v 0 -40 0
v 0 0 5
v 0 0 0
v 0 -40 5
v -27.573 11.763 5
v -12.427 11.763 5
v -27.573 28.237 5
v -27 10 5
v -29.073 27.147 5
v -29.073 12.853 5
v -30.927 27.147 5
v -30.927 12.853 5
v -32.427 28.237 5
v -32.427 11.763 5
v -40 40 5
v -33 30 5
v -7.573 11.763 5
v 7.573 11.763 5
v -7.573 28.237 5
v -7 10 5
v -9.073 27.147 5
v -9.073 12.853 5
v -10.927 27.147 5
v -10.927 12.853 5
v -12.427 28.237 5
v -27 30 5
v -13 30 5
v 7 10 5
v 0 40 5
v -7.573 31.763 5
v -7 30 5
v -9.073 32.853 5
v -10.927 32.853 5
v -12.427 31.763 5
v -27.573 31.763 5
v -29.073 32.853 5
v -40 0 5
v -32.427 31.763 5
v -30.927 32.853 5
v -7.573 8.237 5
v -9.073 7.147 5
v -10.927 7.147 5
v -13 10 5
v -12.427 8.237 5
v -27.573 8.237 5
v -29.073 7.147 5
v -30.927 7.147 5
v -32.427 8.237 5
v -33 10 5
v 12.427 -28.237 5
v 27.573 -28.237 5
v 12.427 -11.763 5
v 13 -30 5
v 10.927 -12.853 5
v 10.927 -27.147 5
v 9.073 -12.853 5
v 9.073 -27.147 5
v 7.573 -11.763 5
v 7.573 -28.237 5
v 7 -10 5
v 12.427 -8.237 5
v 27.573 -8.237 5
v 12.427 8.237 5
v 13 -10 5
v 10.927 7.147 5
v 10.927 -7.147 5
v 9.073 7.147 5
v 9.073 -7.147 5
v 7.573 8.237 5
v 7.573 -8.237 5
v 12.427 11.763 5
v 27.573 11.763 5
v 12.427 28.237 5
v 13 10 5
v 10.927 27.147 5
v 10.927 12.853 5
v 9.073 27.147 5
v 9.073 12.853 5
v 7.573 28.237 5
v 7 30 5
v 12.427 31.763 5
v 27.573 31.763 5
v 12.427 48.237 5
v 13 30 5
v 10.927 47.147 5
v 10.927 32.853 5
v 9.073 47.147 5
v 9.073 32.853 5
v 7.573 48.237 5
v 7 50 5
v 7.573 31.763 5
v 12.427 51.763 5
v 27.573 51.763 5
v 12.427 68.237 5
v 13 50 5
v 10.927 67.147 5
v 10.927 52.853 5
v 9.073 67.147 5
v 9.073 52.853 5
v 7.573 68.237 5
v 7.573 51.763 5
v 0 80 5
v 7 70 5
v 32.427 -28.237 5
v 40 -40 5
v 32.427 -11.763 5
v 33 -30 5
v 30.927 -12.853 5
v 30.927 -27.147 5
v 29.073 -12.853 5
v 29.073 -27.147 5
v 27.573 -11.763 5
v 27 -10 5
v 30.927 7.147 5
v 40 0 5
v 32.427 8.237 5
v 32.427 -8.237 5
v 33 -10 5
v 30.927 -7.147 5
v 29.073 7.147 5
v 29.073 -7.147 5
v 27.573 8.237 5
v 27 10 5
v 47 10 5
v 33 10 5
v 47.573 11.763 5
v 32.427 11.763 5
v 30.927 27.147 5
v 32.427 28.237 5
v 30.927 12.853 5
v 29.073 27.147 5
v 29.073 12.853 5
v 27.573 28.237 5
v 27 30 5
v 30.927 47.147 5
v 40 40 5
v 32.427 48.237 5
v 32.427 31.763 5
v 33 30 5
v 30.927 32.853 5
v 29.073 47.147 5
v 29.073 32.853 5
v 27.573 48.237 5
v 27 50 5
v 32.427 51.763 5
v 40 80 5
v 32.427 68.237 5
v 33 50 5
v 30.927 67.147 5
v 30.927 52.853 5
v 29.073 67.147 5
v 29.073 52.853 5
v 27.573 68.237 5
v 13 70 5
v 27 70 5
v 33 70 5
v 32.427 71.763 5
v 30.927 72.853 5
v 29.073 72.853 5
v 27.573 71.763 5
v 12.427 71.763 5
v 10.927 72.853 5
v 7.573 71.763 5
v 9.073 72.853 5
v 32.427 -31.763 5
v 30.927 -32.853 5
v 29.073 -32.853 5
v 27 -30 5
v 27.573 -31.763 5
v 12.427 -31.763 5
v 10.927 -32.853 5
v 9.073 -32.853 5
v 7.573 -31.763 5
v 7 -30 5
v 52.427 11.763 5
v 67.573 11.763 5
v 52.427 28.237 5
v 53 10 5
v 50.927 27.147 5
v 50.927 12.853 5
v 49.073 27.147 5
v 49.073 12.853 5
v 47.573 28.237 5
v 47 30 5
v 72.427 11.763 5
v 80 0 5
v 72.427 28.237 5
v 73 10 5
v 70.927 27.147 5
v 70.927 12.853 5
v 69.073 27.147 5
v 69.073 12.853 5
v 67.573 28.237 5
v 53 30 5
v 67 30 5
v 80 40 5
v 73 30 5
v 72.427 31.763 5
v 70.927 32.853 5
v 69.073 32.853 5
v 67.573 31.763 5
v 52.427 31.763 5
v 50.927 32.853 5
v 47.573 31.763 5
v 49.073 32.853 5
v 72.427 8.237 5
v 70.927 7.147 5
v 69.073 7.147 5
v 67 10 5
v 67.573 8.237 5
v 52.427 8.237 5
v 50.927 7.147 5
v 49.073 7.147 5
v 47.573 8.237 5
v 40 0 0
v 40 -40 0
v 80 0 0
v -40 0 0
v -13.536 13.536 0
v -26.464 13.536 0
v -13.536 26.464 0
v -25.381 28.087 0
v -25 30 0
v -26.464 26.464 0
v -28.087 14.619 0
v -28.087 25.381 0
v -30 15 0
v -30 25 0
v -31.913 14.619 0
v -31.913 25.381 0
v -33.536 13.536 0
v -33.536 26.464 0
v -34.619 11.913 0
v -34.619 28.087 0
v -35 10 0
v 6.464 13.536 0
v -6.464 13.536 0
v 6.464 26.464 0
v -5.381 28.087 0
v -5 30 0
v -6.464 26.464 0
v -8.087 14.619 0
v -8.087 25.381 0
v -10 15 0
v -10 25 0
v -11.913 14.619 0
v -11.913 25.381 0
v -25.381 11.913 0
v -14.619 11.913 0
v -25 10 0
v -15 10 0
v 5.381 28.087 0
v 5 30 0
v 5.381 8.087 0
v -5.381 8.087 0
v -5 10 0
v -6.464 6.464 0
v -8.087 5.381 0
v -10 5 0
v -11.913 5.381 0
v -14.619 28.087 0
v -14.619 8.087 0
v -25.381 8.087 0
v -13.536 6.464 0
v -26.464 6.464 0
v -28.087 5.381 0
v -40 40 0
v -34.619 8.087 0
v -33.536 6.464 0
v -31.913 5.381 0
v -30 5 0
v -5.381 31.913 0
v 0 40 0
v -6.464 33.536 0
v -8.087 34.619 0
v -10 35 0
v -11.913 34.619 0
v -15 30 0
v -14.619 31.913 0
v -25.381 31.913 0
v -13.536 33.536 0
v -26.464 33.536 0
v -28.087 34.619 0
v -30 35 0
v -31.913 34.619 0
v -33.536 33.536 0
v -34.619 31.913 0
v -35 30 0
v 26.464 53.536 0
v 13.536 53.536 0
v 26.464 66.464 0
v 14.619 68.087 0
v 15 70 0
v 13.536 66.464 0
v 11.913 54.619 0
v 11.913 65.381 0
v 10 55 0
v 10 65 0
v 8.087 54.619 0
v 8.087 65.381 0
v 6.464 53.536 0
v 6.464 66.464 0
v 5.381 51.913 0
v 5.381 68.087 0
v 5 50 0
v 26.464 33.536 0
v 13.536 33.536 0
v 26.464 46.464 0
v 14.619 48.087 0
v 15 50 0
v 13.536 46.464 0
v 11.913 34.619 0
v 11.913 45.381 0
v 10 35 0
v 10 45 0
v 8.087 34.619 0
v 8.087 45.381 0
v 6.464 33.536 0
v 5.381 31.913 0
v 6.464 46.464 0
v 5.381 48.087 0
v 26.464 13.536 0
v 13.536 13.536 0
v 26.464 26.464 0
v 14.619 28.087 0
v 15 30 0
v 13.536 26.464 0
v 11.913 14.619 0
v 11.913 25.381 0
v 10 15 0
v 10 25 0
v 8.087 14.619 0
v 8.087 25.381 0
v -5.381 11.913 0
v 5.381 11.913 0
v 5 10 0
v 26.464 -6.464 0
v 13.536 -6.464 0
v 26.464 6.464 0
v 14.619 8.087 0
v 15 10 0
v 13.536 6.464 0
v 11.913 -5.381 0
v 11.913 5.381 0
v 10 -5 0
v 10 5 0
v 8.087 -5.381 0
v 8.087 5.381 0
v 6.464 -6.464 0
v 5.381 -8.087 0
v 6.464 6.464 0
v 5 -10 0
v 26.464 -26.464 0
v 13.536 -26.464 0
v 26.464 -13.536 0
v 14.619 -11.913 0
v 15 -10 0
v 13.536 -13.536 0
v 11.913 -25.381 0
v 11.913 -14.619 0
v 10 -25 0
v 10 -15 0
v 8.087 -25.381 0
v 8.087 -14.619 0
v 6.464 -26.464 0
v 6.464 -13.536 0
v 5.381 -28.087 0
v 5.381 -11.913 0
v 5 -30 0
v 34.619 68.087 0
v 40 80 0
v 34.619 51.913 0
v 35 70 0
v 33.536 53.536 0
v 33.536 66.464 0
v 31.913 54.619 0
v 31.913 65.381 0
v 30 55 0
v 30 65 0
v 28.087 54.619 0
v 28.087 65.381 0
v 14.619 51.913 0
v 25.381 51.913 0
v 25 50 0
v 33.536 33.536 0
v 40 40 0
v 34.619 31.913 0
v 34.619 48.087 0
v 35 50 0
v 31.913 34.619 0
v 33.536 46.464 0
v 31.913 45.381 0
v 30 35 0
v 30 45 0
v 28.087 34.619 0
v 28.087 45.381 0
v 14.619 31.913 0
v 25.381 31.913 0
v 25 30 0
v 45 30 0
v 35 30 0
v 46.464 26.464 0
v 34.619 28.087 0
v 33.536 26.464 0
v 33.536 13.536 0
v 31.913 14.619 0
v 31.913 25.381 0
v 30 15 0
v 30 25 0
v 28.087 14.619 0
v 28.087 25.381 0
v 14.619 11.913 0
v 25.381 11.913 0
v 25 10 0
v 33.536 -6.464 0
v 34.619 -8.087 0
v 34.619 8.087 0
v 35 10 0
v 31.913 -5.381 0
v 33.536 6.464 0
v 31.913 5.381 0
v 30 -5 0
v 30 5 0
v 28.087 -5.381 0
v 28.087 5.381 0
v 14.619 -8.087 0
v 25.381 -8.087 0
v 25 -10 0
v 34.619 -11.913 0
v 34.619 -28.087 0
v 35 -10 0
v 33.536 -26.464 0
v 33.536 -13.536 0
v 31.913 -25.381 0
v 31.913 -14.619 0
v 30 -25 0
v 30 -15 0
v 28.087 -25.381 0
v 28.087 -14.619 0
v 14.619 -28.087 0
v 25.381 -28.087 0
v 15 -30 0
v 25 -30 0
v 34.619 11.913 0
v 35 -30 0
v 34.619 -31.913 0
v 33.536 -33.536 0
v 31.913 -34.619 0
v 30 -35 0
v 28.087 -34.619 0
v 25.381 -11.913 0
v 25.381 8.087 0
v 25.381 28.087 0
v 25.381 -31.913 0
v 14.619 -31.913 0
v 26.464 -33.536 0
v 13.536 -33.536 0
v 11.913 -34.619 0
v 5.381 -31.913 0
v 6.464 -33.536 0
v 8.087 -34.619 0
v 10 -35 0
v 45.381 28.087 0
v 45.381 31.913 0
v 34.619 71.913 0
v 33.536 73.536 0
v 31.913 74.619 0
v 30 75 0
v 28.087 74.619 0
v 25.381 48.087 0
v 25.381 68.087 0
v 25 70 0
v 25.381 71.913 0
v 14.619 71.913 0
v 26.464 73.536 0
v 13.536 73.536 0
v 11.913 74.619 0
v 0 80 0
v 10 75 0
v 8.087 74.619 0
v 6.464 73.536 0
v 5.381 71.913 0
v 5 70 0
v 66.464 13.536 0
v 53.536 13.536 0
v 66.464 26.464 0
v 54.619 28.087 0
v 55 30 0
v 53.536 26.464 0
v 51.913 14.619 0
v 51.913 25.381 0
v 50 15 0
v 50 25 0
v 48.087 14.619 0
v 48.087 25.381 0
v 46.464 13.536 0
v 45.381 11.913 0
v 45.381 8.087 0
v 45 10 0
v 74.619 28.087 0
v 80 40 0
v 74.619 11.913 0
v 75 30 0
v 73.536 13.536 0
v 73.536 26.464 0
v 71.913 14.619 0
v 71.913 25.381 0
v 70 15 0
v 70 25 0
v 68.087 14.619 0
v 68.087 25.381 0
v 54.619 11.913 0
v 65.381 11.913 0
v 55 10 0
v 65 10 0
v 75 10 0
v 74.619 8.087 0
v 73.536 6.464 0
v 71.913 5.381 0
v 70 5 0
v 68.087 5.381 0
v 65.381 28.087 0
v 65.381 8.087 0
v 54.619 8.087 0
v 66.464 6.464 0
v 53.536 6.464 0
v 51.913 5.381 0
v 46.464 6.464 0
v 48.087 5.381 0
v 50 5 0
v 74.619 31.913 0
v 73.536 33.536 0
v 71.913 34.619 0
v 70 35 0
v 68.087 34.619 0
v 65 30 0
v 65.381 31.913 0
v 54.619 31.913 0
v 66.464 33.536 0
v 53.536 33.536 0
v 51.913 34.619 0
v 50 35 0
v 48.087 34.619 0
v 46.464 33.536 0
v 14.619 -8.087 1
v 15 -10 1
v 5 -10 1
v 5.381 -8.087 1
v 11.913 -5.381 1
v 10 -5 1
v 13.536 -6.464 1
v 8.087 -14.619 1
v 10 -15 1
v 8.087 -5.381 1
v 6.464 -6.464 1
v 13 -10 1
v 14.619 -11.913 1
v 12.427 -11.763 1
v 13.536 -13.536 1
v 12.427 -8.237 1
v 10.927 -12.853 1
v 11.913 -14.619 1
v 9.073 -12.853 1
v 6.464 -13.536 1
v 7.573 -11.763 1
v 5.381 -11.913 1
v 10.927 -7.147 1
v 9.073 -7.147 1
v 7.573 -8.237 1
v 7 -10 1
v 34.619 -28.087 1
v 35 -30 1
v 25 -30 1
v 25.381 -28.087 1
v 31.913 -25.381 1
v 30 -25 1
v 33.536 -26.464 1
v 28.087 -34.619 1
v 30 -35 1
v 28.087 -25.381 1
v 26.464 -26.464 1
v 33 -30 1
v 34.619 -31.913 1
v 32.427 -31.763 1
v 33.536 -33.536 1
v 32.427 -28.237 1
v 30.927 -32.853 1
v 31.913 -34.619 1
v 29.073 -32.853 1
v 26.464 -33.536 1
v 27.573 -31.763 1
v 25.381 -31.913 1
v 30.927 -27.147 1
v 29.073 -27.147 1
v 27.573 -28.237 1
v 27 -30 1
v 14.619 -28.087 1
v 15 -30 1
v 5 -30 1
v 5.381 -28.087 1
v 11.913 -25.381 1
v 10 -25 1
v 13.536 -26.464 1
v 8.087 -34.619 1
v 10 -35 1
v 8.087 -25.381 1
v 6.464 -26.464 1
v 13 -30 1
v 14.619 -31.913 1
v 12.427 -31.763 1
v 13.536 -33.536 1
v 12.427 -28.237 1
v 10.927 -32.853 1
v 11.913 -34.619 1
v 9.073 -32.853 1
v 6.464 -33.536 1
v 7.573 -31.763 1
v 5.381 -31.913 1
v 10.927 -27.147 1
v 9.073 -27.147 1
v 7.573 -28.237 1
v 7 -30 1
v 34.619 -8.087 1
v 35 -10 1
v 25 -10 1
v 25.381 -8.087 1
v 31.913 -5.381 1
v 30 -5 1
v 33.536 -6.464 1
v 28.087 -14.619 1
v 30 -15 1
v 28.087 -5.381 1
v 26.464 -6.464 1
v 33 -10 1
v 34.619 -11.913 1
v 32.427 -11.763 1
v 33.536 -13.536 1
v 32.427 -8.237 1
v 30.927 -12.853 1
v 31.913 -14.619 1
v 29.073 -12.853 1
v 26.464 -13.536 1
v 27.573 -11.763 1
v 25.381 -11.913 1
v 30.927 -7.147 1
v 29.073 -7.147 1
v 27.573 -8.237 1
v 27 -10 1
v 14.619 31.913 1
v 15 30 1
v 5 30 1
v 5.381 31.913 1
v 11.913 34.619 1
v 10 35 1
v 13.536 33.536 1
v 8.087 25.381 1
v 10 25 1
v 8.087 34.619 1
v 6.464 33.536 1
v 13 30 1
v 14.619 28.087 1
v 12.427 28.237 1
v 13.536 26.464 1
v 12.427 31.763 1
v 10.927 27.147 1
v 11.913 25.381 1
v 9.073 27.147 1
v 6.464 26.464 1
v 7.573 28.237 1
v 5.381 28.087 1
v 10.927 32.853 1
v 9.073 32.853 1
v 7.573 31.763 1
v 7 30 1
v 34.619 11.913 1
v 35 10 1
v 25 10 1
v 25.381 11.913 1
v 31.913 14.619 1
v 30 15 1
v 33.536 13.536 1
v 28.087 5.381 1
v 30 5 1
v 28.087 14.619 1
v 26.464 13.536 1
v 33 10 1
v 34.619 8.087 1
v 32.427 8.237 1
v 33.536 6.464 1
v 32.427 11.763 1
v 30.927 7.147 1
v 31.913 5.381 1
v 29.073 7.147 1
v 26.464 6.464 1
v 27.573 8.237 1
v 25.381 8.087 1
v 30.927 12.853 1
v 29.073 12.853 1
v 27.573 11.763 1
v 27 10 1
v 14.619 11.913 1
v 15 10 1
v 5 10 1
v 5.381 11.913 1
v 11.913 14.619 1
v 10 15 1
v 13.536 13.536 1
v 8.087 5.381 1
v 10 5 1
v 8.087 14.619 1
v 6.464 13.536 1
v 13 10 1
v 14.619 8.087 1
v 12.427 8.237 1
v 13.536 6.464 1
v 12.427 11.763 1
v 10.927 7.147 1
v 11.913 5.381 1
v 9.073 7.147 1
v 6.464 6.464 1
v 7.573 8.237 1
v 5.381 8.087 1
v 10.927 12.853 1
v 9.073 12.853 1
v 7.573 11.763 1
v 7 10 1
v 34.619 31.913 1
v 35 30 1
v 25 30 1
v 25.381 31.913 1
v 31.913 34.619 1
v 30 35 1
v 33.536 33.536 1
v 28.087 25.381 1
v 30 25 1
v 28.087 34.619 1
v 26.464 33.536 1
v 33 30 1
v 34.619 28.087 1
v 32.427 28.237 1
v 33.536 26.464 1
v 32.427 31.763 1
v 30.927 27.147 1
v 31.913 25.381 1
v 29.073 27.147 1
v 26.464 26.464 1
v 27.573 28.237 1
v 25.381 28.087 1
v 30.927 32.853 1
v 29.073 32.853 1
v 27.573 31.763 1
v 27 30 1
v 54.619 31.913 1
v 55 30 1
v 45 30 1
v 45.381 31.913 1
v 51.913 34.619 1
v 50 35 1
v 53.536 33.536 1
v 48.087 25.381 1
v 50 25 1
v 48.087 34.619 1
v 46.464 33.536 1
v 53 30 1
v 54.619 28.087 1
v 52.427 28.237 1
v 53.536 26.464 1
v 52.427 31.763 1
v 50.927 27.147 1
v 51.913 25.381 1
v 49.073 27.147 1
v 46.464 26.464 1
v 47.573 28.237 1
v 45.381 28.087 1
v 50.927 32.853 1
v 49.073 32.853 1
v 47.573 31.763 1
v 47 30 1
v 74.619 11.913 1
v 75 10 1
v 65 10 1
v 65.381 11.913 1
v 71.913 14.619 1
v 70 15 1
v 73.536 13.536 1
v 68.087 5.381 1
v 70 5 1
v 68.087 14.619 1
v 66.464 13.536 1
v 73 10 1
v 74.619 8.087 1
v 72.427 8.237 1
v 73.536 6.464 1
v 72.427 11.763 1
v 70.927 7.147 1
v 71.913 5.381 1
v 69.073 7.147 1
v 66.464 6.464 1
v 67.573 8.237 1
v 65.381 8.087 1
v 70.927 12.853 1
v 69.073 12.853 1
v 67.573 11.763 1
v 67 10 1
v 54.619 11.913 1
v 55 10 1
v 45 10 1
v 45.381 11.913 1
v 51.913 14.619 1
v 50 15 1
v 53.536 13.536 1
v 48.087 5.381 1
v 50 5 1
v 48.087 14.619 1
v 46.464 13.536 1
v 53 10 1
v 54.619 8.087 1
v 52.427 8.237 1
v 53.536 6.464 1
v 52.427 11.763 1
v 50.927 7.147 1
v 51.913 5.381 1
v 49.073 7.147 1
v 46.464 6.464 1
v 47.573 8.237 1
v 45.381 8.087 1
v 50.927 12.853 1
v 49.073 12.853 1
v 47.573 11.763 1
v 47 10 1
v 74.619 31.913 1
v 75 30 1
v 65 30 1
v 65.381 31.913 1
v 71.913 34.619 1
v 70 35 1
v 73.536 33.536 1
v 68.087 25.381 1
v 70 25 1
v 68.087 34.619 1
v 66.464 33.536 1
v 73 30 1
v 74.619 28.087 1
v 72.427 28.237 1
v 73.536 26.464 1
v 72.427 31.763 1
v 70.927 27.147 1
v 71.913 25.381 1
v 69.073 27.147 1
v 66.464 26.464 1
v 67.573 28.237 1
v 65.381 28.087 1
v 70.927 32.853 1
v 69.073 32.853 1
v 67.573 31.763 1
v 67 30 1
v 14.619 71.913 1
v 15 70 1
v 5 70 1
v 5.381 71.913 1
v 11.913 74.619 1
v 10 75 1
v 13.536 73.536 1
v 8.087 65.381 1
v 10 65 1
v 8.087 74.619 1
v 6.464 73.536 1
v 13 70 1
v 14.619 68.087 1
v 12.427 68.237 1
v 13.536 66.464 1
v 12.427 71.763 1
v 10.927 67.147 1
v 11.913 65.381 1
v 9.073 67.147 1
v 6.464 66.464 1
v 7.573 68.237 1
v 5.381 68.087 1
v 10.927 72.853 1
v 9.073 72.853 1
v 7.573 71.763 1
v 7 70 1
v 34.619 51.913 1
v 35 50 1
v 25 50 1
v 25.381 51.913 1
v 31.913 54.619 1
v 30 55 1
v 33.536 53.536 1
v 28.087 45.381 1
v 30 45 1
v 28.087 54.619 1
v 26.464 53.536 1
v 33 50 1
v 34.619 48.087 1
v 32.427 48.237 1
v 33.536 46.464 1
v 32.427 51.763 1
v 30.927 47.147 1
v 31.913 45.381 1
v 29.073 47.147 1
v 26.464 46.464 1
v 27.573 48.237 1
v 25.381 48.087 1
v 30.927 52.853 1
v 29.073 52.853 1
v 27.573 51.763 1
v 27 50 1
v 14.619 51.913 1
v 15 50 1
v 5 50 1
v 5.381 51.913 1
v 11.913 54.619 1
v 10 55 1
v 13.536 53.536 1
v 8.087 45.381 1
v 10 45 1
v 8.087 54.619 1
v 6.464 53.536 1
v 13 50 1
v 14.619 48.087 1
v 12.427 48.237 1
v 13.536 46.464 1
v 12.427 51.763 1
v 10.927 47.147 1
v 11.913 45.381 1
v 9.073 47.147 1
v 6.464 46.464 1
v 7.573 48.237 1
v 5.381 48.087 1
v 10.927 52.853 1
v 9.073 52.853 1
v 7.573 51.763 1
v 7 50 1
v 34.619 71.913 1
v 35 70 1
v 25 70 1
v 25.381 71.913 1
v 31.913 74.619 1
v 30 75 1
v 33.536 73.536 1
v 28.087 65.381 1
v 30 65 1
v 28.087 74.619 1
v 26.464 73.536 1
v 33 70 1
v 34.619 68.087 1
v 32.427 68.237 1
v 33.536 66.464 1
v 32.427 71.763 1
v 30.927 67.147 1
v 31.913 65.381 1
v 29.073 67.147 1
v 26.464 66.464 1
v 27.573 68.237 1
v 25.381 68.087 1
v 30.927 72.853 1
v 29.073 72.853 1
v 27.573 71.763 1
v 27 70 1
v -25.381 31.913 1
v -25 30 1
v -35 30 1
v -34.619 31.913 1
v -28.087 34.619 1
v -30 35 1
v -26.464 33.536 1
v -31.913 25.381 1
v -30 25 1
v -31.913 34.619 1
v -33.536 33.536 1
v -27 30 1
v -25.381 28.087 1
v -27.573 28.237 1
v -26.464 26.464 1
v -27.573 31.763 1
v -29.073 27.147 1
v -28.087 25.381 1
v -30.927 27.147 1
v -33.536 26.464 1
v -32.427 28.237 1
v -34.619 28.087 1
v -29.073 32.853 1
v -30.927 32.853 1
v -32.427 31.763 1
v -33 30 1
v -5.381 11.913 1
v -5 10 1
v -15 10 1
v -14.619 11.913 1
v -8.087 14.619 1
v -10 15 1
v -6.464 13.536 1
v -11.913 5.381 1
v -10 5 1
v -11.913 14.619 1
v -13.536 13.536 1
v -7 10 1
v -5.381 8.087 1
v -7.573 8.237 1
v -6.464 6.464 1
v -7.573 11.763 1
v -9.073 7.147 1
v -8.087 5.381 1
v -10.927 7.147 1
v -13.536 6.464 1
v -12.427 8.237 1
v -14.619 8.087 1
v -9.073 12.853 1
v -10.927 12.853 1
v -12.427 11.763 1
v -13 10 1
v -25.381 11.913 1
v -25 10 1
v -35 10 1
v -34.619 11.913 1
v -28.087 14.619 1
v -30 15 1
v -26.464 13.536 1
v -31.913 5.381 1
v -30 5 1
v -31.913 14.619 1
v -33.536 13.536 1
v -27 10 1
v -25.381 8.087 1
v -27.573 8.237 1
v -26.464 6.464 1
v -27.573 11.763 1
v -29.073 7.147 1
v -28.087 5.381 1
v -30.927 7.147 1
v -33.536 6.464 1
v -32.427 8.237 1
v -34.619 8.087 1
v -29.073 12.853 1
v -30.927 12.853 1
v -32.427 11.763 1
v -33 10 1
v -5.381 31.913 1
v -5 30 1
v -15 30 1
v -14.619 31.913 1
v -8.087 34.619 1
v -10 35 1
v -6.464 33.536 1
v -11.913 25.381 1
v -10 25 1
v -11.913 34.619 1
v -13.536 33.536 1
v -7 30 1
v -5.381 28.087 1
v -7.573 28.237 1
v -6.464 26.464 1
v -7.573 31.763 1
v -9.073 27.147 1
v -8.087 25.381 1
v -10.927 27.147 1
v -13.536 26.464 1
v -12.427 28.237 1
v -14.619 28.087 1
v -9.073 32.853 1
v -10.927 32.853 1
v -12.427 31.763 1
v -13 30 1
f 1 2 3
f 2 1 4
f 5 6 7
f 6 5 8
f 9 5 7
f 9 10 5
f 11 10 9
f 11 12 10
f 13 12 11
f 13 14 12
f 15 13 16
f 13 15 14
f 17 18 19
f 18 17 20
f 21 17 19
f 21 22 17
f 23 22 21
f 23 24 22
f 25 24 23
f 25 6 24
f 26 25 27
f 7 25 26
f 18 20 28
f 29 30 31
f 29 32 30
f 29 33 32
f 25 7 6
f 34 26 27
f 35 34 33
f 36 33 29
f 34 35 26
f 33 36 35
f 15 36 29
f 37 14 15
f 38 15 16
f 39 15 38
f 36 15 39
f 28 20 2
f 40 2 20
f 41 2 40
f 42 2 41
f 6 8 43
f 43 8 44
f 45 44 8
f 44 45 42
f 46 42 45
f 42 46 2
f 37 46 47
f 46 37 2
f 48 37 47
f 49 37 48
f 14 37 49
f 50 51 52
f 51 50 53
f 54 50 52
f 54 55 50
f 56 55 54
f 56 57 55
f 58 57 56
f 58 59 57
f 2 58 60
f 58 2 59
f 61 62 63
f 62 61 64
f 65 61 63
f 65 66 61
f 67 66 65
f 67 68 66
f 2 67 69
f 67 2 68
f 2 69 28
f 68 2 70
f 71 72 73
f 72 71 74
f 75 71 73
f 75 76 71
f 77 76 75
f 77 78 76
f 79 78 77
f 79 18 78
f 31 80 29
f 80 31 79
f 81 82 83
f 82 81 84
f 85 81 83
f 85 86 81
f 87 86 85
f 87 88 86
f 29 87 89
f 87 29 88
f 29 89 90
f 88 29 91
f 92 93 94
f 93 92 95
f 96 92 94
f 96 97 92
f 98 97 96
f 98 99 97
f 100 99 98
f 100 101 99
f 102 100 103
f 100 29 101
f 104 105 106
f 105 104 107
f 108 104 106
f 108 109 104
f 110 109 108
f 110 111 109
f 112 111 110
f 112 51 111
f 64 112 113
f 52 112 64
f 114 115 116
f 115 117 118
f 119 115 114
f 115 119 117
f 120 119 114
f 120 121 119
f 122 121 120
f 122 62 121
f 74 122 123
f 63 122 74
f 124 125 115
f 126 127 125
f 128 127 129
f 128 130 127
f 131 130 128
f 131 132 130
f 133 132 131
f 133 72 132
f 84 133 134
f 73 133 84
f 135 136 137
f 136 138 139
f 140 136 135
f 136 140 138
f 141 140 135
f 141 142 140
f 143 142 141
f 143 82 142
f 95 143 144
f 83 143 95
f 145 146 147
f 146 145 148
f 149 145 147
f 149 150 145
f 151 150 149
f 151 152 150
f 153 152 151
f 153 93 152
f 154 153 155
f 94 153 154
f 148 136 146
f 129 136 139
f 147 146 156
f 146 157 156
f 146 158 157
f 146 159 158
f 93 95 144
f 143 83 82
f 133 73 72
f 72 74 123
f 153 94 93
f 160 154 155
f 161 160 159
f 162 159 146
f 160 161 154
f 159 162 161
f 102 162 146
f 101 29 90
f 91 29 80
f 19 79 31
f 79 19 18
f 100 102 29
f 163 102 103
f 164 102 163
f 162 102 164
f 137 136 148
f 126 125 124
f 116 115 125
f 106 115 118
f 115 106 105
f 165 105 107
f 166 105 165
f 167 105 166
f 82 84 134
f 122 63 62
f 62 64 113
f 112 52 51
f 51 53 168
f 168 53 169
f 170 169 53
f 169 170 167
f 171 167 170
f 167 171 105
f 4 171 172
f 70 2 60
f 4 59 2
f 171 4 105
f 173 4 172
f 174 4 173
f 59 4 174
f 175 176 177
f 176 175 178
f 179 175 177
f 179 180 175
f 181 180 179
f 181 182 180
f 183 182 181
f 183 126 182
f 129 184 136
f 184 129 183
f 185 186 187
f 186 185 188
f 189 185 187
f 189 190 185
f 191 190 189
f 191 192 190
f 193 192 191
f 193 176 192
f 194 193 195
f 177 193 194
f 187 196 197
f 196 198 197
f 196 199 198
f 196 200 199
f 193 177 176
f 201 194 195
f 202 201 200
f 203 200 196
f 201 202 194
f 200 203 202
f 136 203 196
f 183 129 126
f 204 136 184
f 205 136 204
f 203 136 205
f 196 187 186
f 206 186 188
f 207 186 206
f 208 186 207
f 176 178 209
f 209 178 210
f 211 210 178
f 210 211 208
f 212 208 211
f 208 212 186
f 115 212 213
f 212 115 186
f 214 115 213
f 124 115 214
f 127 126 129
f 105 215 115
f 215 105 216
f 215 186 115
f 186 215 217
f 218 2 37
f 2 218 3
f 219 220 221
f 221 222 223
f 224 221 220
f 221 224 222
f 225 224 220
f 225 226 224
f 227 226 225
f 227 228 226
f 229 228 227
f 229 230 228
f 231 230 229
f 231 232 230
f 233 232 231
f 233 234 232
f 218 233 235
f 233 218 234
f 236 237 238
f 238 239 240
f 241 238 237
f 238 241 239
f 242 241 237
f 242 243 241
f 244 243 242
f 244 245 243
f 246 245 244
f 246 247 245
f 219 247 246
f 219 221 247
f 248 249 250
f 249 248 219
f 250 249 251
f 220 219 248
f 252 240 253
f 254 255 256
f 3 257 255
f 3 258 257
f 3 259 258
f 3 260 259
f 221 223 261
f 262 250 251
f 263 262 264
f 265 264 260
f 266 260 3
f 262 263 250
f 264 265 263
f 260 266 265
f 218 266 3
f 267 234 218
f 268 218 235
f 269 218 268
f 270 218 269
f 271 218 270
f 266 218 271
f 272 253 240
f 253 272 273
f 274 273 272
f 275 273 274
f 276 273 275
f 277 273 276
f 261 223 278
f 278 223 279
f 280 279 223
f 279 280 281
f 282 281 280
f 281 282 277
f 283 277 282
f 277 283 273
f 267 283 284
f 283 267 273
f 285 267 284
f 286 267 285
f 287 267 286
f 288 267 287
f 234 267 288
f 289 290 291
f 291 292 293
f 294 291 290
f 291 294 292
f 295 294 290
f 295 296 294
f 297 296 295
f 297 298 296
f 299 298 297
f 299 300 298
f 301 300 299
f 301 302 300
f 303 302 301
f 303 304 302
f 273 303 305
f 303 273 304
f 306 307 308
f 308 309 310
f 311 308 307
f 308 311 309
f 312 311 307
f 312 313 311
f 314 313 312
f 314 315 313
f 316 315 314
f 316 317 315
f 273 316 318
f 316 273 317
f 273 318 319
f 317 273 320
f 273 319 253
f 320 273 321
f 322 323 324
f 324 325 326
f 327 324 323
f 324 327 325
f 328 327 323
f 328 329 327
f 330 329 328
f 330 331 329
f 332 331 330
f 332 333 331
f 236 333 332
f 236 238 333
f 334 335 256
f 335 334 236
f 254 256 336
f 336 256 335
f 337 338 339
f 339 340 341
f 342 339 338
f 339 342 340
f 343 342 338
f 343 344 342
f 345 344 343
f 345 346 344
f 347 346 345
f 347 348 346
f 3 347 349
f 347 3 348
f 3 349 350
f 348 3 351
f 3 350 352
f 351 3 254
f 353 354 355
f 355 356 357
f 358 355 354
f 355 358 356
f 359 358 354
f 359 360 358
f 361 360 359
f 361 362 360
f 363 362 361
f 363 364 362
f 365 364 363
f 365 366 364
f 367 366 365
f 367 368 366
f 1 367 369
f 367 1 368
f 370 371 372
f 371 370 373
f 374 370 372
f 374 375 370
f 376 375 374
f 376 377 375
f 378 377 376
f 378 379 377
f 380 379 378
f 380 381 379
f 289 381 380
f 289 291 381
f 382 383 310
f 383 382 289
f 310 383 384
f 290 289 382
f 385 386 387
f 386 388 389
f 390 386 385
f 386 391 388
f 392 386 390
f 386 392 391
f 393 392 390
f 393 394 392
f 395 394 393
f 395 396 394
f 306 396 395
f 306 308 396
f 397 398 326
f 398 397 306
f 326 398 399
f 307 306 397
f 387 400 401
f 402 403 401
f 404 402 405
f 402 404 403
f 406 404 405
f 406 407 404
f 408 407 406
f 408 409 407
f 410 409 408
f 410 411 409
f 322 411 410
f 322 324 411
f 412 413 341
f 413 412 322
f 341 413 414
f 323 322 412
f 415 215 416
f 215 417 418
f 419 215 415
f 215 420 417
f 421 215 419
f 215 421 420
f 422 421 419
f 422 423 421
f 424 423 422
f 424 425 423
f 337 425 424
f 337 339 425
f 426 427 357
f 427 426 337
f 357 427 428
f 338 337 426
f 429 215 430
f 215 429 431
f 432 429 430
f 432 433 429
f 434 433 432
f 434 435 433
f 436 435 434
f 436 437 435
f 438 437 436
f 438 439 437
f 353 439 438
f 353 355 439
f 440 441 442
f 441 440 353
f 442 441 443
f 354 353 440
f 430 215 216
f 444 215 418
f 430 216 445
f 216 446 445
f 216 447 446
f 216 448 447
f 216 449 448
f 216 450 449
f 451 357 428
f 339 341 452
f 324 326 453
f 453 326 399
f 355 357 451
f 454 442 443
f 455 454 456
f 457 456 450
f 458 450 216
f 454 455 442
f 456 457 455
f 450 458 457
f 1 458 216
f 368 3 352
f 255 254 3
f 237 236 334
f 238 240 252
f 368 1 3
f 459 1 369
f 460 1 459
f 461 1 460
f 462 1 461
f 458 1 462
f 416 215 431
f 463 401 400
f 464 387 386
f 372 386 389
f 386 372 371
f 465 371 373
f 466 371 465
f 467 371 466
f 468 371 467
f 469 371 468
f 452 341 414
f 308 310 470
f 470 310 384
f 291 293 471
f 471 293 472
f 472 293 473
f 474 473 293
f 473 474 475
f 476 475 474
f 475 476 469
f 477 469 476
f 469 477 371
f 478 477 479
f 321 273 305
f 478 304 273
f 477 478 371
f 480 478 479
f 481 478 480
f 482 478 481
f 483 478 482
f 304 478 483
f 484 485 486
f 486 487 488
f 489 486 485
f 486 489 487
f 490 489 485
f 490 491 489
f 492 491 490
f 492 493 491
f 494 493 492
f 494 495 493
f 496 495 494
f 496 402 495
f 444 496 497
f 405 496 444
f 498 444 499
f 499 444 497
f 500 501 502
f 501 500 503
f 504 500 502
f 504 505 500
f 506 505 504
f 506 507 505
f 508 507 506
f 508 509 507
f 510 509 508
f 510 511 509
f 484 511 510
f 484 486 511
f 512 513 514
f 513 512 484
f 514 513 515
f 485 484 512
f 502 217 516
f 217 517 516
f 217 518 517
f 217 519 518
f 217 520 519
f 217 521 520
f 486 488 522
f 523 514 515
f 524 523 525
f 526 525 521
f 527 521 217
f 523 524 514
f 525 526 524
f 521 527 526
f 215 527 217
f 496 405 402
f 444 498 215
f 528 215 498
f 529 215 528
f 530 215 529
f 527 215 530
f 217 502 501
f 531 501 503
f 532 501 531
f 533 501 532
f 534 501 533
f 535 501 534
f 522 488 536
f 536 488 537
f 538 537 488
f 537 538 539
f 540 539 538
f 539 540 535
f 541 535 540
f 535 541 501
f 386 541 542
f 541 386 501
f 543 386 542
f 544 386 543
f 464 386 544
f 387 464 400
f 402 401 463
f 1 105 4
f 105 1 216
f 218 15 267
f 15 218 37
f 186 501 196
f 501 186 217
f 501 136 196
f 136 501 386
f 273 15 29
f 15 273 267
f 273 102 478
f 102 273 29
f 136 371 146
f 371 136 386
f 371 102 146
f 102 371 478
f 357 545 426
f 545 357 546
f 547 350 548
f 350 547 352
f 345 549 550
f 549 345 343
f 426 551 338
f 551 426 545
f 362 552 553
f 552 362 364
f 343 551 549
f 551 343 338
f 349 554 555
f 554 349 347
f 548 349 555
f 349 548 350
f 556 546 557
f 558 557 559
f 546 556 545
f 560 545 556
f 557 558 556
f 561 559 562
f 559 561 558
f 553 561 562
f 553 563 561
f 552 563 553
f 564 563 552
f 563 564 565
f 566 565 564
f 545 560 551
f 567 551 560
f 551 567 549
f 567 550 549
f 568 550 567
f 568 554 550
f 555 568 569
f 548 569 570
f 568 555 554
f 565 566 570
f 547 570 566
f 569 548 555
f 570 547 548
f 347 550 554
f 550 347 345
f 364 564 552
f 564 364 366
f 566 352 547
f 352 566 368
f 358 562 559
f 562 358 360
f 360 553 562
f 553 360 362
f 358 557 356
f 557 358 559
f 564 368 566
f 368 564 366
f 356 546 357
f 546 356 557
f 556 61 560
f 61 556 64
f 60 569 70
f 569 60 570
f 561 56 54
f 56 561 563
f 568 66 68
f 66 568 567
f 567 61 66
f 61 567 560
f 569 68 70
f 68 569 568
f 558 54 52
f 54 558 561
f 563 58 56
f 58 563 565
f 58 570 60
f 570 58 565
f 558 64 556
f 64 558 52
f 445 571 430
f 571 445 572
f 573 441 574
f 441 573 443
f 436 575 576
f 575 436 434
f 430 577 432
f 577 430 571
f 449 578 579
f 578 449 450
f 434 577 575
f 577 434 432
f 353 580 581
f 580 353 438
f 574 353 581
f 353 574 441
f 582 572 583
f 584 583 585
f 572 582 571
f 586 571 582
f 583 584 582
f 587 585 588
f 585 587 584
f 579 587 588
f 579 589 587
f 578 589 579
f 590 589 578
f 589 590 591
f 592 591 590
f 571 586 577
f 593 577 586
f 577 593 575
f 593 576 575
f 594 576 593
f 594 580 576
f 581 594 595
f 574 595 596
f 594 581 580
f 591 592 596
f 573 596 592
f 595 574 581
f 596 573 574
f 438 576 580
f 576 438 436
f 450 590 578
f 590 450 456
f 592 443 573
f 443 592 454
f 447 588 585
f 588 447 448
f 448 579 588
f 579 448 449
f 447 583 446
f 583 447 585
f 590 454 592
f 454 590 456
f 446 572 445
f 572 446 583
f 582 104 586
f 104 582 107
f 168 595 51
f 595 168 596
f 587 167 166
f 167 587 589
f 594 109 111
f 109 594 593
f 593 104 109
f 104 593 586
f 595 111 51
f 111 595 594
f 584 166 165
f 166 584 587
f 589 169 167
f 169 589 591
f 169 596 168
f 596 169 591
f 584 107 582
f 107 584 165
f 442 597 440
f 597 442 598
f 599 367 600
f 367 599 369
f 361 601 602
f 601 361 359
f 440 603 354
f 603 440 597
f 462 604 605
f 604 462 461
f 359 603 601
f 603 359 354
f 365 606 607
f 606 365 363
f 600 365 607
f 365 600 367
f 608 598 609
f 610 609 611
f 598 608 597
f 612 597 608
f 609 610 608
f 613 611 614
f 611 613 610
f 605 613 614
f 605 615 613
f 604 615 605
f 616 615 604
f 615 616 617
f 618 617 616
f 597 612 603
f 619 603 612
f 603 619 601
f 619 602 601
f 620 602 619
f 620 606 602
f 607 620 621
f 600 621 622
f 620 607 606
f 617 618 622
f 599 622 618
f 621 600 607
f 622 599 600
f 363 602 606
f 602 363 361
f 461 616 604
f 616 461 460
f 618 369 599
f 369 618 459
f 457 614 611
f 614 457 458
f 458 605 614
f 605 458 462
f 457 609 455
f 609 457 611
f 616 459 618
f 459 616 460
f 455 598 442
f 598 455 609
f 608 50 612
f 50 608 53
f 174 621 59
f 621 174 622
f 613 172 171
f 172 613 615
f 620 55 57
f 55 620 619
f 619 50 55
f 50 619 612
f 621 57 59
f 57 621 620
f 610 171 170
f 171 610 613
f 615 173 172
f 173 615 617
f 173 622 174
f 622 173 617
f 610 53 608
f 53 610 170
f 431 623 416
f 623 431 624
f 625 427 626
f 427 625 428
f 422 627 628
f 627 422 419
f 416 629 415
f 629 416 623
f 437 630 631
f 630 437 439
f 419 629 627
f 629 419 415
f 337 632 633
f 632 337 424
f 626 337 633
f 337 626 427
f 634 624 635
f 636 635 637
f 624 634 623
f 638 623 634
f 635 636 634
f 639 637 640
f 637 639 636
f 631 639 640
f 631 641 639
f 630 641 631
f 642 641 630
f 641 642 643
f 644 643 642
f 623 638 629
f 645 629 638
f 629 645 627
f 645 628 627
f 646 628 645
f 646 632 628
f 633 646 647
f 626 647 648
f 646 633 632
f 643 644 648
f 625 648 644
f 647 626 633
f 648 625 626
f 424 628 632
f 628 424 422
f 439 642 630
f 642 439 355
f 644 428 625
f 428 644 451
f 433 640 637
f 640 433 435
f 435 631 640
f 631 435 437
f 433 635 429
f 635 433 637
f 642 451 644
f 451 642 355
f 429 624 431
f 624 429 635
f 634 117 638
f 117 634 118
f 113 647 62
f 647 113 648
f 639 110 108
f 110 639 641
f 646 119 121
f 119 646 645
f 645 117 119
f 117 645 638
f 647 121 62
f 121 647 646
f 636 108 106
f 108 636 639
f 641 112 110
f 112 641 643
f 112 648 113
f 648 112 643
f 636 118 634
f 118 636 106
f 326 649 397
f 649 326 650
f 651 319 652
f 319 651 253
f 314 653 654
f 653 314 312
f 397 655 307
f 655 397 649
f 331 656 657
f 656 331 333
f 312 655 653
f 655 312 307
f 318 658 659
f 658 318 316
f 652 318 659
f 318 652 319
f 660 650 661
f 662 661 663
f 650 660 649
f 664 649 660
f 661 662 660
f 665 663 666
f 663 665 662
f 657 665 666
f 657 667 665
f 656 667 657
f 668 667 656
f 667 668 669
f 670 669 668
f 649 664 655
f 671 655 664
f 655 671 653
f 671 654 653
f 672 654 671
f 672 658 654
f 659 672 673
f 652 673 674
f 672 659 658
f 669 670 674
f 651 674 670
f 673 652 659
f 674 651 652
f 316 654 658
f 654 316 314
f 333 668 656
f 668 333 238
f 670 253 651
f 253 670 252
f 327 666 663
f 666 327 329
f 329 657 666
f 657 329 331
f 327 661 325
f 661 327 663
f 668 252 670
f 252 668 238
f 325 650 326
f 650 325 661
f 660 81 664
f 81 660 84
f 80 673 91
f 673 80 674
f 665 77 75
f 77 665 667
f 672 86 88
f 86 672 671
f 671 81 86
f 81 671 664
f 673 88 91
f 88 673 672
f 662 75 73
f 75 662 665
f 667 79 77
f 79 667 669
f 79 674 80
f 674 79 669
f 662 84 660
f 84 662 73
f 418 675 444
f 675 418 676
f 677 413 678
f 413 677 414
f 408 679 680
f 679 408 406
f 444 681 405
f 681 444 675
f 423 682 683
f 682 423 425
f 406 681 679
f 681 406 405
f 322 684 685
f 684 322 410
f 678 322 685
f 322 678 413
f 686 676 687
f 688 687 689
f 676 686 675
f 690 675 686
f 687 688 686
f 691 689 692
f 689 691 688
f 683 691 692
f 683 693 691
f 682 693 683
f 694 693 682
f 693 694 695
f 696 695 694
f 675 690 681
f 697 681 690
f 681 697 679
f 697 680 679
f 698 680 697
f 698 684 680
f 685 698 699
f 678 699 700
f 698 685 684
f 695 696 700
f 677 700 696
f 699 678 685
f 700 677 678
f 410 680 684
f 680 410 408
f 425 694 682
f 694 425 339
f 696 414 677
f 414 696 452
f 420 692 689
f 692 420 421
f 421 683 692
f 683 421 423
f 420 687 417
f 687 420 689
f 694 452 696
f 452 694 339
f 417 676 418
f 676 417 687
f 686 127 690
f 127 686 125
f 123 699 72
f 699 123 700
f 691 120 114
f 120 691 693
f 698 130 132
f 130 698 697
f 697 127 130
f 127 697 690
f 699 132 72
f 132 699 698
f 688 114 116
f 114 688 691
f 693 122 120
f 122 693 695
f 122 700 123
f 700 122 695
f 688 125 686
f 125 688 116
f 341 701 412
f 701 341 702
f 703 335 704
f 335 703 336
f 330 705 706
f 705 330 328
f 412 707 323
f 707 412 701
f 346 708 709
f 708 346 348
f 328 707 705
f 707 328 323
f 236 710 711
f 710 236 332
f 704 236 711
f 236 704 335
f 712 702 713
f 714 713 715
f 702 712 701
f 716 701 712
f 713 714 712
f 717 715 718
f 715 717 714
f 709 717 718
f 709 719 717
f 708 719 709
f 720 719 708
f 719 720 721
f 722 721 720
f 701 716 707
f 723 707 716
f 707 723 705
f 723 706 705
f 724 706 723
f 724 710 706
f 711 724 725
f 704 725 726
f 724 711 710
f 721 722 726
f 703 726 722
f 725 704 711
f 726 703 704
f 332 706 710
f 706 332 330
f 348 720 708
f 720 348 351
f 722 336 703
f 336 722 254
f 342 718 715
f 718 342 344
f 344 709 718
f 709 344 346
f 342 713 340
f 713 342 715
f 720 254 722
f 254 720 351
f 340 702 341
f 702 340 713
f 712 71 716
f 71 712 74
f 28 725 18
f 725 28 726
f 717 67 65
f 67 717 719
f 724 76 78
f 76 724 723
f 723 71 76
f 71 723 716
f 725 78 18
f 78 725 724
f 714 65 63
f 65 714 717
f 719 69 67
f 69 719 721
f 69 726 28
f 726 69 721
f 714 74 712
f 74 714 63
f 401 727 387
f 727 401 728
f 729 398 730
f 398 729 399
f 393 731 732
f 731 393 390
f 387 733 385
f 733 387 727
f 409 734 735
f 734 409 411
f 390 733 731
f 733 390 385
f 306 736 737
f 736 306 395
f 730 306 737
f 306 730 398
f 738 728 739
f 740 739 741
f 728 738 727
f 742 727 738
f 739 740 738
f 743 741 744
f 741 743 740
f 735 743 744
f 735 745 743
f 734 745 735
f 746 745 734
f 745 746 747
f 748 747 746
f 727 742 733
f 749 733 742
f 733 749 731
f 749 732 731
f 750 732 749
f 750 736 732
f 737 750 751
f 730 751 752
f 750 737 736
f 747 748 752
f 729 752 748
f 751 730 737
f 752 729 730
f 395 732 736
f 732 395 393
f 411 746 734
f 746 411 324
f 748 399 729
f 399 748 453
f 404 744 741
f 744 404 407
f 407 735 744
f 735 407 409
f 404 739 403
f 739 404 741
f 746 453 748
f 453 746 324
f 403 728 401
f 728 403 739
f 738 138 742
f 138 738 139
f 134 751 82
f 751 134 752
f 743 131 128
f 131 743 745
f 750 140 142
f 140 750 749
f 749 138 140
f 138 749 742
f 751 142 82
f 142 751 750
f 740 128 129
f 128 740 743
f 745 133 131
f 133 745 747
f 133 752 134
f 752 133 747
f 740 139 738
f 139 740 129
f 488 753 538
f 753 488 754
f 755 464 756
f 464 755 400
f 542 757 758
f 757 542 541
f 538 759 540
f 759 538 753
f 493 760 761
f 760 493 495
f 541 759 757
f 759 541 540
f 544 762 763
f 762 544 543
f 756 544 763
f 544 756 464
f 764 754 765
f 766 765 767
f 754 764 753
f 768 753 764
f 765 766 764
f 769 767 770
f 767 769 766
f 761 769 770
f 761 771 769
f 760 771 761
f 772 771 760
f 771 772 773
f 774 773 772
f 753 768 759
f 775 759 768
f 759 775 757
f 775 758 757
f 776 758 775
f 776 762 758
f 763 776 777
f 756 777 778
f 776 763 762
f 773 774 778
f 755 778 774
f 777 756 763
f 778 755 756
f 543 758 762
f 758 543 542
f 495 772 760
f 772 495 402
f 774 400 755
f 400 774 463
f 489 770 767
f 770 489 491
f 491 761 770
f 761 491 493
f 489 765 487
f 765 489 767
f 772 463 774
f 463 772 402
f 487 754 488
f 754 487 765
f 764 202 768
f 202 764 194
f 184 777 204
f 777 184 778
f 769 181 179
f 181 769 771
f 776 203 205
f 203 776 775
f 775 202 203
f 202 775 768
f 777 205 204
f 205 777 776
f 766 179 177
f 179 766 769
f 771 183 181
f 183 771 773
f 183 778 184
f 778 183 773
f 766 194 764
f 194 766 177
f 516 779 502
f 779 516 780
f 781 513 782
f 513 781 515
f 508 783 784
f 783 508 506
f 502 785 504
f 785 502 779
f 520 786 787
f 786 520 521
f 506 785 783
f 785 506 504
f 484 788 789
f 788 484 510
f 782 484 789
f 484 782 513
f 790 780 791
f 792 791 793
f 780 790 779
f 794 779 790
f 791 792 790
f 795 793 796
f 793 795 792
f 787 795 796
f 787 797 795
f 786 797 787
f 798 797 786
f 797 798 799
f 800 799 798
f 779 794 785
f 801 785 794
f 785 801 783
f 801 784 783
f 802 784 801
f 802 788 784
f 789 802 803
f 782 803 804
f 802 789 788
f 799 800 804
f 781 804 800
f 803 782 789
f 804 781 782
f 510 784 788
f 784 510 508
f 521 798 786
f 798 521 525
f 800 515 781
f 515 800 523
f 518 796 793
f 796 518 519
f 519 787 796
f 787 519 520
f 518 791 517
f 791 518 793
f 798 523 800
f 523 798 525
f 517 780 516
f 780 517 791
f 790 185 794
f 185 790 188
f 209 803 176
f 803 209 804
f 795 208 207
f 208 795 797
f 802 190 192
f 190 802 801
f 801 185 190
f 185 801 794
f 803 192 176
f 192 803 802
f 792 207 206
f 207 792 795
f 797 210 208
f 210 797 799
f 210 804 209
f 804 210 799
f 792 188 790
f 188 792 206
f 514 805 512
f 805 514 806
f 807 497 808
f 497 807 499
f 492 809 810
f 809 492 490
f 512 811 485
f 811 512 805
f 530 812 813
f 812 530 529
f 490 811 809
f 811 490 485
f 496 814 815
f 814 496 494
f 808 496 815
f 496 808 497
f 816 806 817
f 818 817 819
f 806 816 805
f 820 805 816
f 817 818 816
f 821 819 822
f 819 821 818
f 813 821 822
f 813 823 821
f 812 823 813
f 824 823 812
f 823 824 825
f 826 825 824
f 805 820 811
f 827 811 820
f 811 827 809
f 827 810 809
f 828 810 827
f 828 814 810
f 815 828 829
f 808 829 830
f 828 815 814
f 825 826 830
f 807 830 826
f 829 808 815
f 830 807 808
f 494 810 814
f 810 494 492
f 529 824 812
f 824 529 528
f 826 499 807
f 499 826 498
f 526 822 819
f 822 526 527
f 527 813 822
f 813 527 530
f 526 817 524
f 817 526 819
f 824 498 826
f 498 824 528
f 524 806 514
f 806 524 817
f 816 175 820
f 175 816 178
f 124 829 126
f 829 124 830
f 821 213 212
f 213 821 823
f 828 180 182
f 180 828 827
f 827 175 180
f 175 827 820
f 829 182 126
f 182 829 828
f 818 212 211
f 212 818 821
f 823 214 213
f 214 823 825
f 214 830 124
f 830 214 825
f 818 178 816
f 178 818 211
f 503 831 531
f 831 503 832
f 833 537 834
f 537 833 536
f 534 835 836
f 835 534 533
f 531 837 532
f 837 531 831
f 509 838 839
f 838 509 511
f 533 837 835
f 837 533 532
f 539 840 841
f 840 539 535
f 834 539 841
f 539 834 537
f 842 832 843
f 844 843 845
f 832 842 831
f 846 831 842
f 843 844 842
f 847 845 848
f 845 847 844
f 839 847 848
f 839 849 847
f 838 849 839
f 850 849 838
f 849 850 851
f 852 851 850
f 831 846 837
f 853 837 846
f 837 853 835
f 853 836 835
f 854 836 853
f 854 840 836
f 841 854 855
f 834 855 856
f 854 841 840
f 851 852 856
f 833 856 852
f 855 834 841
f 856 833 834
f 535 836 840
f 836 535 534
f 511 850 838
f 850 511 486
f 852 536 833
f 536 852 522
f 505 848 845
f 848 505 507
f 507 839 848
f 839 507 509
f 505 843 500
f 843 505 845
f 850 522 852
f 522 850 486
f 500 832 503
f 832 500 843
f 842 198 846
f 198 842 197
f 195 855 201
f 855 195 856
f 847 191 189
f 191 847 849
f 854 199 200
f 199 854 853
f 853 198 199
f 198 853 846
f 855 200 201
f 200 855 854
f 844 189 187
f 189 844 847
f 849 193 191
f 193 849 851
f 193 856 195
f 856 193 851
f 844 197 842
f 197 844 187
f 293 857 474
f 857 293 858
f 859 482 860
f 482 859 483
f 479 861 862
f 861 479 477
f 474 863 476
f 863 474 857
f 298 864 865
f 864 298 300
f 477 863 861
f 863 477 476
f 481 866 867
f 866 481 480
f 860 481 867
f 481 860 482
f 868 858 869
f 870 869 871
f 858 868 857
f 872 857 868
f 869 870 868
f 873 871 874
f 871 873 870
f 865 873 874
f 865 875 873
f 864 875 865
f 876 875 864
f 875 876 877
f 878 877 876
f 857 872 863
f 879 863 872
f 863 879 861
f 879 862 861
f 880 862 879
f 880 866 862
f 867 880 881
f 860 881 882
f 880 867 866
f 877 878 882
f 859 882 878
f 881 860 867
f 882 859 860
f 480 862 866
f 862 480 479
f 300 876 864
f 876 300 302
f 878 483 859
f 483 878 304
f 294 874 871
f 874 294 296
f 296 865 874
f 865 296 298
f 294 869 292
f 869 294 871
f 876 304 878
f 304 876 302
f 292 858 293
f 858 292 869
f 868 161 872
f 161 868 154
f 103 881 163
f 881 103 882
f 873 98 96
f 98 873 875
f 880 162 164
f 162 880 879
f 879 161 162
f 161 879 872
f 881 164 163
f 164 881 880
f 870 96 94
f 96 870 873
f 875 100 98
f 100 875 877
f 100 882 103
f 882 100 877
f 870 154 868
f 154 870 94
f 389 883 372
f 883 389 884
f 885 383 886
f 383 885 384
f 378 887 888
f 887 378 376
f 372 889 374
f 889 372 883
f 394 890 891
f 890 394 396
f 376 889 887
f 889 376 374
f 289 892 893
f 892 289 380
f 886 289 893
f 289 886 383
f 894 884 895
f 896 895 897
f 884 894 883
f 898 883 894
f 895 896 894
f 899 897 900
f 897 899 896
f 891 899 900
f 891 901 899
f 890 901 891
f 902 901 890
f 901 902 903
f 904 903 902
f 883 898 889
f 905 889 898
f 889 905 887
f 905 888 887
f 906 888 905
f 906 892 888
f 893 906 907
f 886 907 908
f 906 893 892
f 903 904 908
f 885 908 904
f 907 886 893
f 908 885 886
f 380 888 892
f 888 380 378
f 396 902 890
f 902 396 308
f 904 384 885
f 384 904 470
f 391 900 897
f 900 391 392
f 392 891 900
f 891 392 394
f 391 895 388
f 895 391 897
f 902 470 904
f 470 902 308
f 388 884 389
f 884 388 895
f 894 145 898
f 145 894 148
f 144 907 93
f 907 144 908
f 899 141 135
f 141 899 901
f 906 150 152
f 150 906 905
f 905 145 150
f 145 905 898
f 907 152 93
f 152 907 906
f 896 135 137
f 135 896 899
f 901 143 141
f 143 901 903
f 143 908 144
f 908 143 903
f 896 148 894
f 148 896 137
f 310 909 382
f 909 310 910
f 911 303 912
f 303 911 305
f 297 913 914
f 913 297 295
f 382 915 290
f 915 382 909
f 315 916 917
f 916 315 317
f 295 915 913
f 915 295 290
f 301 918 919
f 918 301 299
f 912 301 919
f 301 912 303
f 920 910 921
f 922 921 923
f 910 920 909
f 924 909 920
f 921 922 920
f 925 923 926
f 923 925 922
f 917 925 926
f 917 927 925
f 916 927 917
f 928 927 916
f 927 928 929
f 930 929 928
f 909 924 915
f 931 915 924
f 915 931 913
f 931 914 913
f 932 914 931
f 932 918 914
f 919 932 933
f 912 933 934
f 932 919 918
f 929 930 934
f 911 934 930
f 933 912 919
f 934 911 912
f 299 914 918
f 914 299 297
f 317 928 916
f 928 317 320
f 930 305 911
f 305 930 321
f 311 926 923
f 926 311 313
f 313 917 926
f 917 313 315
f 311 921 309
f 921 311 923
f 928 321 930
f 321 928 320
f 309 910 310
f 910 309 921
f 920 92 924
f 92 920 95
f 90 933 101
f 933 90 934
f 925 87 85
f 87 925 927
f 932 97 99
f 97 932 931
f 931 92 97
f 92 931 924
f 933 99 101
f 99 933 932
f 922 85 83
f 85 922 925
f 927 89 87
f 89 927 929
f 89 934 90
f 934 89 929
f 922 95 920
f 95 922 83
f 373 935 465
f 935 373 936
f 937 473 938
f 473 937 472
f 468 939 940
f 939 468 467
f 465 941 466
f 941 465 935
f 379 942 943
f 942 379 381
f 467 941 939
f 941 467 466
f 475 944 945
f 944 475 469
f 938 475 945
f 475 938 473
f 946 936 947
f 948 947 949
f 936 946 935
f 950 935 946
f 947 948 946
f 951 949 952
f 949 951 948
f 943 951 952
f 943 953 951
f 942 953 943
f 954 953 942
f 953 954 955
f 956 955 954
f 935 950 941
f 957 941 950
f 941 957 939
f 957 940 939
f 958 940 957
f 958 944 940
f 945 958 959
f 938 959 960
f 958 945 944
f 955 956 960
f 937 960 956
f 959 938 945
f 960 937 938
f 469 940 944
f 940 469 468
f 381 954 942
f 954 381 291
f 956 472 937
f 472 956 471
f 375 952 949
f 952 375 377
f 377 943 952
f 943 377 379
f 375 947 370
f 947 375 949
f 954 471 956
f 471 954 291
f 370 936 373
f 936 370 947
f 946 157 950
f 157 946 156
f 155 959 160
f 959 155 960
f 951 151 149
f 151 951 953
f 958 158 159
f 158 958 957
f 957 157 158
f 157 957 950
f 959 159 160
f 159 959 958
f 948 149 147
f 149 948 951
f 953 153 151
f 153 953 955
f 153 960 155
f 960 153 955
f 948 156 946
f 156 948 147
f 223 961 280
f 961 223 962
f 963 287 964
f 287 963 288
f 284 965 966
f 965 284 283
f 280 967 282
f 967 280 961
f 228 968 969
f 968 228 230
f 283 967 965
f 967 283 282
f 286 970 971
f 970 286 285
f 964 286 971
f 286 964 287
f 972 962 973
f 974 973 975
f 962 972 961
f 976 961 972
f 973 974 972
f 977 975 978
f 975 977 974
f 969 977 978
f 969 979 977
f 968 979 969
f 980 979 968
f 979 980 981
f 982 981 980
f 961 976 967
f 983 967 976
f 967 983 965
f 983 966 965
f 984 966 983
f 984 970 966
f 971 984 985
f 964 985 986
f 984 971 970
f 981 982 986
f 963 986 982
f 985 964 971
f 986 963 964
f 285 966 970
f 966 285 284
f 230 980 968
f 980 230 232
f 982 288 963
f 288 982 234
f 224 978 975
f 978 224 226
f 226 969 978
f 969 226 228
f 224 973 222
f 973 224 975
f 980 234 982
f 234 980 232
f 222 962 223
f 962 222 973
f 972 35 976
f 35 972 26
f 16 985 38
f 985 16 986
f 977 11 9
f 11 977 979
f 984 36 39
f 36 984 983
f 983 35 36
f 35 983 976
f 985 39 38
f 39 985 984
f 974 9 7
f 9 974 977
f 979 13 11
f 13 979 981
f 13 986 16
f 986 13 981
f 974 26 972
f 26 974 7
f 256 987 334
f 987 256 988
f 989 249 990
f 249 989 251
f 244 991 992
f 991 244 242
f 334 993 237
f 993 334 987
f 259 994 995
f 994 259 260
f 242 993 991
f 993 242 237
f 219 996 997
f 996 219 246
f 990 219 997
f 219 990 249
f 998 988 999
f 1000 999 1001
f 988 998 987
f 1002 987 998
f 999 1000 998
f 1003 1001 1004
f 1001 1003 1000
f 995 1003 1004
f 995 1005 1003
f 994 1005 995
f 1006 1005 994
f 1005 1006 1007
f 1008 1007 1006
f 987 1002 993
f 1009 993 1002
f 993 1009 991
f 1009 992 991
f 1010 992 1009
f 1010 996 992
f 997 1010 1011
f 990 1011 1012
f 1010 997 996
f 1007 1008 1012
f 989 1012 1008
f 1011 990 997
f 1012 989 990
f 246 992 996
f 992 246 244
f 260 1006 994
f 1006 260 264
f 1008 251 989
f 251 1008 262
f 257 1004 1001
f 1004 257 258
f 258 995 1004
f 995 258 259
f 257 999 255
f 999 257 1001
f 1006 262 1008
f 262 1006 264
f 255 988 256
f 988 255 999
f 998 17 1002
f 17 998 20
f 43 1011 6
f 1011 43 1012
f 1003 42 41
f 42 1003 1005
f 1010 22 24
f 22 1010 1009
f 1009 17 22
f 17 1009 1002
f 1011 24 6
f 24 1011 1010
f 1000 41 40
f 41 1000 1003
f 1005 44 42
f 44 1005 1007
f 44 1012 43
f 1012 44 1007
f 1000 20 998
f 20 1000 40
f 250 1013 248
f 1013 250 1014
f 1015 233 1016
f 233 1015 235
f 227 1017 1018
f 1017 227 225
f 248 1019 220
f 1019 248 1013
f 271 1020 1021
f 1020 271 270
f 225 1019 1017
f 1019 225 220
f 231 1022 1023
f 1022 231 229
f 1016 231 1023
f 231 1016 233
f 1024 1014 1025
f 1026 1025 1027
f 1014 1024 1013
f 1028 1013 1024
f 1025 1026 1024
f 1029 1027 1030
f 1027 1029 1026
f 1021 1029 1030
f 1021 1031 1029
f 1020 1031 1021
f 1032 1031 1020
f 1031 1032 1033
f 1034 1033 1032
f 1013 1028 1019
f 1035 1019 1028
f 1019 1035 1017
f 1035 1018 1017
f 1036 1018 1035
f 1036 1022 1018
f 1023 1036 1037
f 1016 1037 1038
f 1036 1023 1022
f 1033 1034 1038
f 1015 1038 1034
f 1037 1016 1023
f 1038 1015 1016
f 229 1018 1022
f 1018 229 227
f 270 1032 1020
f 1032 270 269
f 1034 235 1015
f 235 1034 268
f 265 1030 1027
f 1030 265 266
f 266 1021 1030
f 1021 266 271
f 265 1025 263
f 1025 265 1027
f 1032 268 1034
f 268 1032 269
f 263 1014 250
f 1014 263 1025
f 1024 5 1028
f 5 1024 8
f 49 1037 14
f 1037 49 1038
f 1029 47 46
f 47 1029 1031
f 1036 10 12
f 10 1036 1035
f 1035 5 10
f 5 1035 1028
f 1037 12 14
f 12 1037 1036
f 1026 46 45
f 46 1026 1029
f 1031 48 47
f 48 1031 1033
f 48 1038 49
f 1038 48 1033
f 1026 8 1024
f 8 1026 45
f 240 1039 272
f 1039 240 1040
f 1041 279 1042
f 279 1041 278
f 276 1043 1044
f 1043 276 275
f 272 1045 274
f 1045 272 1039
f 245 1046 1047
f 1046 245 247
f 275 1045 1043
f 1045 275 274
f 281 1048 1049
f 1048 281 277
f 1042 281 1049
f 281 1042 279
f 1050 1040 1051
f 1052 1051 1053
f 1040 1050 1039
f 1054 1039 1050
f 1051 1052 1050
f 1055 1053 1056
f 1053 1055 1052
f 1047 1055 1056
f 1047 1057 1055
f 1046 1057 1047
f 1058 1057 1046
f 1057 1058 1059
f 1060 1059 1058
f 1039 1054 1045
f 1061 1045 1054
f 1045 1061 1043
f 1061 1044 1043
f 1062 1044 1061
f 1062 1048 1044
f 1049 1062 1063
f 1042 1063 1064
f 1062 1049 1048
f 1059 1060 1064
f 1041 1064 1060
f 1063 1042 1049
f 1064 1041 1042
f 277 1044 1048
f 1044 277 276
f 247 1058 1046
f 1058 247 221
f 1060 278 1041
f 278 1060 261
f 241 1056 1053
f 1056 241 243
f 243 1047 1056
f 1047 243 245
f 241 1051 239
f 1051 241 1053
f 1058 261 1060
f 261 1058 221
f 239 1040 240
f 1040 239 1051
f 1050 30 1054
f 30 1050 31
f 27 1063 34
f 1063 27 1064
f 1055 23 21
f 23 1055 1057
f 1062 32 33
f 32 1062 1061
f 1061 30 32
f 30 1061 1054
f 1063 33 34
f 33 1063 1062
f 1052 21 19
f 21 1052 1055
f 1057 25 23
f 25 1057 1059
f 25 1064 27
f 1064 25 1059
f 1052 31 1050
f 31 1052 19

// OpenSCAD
// file: Profile.scad
q = 5;

ri = 0.3;
w2 =  6.4/2-ri;
w1 = 11.0/2-ri;
w0 =     w2;
th =  4.3;
t0 =  2.1+1.8+ri;
t1 =  t0+2.35;
t2 =  t0+th-ri;


module groove() {
    hull() {
        translate([ t2+2*ri,  w2+2*ri]) circle(r=ri, $fn=2*q);
        translate([ t2+2*ri+5,  w2+2*ri+5]) circle(r=ri, $fn=2*q);
        translate([ t2+2*ri,  10]) circle(r=ri, $fn=3);
    }
}

module slot_6() {
    hull() {
        translate([ t0, -w0]) circle(r=ri, $fn=5*q);
        translate([ t0,  w0]) circle(r=ri, $fn=2*q);
        translate([ t1, -w1]) circle(r=ri, $fn=2*q);
        translate([ t1,  w1]) circle(r=ri, $fn=2*q);
        translate([ t2, -w1]) circle(r=ri, $fn=2*q);
        translate([ t2,  w1]) circle(r=ri, $fn=2*q);
    }  
    translate([ t0-0.3, 0]) circle(r=0.5, $fn=5*q);    
}
module vSlot_6() {
    slot_6();
    difference() {
        translate([ t2+5,  0]) square([10,10], center=true);
        groove();
        mirror([0,1]) groove();
    }
}

module profile20x20_6V() {  // 20x20mm profile 6mm Vslot
    le = 20/2;
    difference() {
        hull() {
            translate([-le+0.5,-le+0.5]) circle(r=0.5, $fn=2*q);
            translate([-le+0.5, le-0.5]) circle(r=0.5, $fn=2*q);
            translate([ le-0.5,-le+0.5]) circle(r=0.5, $fn=2*q);
            translate([ le-0.5, le-0.5]) circle(r=0.5, $fn=2*q);
        }   
        circle(d=4.2, $fn=3*q);
        for(i=[0:3]) rotate(90*i) vSlot_6();
    }    
}

module profile40x40_6V() {  // 40x40mm profile 6mm Vslot
    le = 40/2;
    difference() {
        hull() {
            translate([-le+2,-le+2]) circle(r=2, $fn=3*q);
            translate([-le+2, le-2]) circle(r=2, $fn=3*q);
            translate([ le-2,-le+2]) circle(r=2, $fn=3*q);
            translate([ le-2, le-2]) circle(r=2, $fn=3*q);
        }   
        for(i=[0:3]) {
            rotate(90*i) translate([ le/2, le/2]) circle(d=4.6, $fn=3*q);
            rotate(90*i) translate([ le/2, le/2]) vSlot_6();
            rotate(90*i) translate([ le/2,-le/2]) vSlot_6();
            rotate(90*i) translate([-le/2, le/2])  slot_6();
            rotate(90*i) translate([-le/2,-le/2])  slot_6();
        }
        square([le*0.35, le*1.85],center=true);
        square([le*1.85, le*0.35],center=true);
        rotate(45) square(le*0.93,center=true);
    }
}
module V20x20_6(h) {
    linear_extrude(height=h)
    profile20x20_6V();
}

module V40x40_6(h) {
    linear_extrude(height=h)
    profile40x40_6V();
}

//T40x40_10(100);
//vSlotGroove6();
//profile20x20_6V();
//profile40x40_6V();
V20x20_6(50);
translate([60,0]) V40x40_6(50);
// main file
use <Profile.scad>

//%translate([20,20,0]) V40x40_6(50);
//%translate([60.1,20,0]) V40x40_6(50);

module m5_bolt(tl)
{
    rotate([0,0,0]) translate([0,0,0]) cylinder(r=5,h=4);
    rotate([0,0,0]) translate([0,0,2.9]) cylinder(r=3,h=tl+1);
    
}

module theplate()
{
 translate([0,-40,0]) cube([40,40,5]);   
 translate([-40,0,0]) cube([120,40,5]);
 translate([0,40,0]) cube([40,40,5]); 
     
    
}

module tplate()
{
difference(){
 theplate();
 translate([10,30-40,-3]) m5_bolt(30);
 translate([30,10-40,-3]) m5_bolt(30);
 translate([10,10-40,-3]) m5_bolt(30);
 translate([30,30-40,-3]) m5_bolt(30);   
 translate([10,30,-3]) m5_bolt(30);
 translate([30,10,-3]) m5_bolt(30);
 translate([10,10,-3]) m5_bolt(30);
 translate([30,30,-3]) m5_bolt(30);
 translate([40+10,30,-3]) m5_bolt(30);
 translate([40+30,10,-3]) m5_bolt(30);
 translate([40+10,10,-3]) m5_bolt(30);
 translate([40+30,30,-3]) m5_bolt(30);
 translate([0+10,30+40,-3]) m5_bolt(30);
 translate([0+30,10+40,-3]) m5_bolt(30);
 translate([0+10,10+40,-3]) m5_bolt(30);
 translate([0+30,30+40,-3]) m5_bolt(30); 
 translate([-40+10,30,-3]) m5_bolt(30);
 translate([-40+30,10,-3]) m5_bolt(30);
 translate([-40+10,10,-3]) m5_bolt(30);
 translate([-40+30,30,-3]) m5_bolt(30);    
 
}   
tsize = 10;
}

//translate([0,0,50]) theplate();
tplate();
